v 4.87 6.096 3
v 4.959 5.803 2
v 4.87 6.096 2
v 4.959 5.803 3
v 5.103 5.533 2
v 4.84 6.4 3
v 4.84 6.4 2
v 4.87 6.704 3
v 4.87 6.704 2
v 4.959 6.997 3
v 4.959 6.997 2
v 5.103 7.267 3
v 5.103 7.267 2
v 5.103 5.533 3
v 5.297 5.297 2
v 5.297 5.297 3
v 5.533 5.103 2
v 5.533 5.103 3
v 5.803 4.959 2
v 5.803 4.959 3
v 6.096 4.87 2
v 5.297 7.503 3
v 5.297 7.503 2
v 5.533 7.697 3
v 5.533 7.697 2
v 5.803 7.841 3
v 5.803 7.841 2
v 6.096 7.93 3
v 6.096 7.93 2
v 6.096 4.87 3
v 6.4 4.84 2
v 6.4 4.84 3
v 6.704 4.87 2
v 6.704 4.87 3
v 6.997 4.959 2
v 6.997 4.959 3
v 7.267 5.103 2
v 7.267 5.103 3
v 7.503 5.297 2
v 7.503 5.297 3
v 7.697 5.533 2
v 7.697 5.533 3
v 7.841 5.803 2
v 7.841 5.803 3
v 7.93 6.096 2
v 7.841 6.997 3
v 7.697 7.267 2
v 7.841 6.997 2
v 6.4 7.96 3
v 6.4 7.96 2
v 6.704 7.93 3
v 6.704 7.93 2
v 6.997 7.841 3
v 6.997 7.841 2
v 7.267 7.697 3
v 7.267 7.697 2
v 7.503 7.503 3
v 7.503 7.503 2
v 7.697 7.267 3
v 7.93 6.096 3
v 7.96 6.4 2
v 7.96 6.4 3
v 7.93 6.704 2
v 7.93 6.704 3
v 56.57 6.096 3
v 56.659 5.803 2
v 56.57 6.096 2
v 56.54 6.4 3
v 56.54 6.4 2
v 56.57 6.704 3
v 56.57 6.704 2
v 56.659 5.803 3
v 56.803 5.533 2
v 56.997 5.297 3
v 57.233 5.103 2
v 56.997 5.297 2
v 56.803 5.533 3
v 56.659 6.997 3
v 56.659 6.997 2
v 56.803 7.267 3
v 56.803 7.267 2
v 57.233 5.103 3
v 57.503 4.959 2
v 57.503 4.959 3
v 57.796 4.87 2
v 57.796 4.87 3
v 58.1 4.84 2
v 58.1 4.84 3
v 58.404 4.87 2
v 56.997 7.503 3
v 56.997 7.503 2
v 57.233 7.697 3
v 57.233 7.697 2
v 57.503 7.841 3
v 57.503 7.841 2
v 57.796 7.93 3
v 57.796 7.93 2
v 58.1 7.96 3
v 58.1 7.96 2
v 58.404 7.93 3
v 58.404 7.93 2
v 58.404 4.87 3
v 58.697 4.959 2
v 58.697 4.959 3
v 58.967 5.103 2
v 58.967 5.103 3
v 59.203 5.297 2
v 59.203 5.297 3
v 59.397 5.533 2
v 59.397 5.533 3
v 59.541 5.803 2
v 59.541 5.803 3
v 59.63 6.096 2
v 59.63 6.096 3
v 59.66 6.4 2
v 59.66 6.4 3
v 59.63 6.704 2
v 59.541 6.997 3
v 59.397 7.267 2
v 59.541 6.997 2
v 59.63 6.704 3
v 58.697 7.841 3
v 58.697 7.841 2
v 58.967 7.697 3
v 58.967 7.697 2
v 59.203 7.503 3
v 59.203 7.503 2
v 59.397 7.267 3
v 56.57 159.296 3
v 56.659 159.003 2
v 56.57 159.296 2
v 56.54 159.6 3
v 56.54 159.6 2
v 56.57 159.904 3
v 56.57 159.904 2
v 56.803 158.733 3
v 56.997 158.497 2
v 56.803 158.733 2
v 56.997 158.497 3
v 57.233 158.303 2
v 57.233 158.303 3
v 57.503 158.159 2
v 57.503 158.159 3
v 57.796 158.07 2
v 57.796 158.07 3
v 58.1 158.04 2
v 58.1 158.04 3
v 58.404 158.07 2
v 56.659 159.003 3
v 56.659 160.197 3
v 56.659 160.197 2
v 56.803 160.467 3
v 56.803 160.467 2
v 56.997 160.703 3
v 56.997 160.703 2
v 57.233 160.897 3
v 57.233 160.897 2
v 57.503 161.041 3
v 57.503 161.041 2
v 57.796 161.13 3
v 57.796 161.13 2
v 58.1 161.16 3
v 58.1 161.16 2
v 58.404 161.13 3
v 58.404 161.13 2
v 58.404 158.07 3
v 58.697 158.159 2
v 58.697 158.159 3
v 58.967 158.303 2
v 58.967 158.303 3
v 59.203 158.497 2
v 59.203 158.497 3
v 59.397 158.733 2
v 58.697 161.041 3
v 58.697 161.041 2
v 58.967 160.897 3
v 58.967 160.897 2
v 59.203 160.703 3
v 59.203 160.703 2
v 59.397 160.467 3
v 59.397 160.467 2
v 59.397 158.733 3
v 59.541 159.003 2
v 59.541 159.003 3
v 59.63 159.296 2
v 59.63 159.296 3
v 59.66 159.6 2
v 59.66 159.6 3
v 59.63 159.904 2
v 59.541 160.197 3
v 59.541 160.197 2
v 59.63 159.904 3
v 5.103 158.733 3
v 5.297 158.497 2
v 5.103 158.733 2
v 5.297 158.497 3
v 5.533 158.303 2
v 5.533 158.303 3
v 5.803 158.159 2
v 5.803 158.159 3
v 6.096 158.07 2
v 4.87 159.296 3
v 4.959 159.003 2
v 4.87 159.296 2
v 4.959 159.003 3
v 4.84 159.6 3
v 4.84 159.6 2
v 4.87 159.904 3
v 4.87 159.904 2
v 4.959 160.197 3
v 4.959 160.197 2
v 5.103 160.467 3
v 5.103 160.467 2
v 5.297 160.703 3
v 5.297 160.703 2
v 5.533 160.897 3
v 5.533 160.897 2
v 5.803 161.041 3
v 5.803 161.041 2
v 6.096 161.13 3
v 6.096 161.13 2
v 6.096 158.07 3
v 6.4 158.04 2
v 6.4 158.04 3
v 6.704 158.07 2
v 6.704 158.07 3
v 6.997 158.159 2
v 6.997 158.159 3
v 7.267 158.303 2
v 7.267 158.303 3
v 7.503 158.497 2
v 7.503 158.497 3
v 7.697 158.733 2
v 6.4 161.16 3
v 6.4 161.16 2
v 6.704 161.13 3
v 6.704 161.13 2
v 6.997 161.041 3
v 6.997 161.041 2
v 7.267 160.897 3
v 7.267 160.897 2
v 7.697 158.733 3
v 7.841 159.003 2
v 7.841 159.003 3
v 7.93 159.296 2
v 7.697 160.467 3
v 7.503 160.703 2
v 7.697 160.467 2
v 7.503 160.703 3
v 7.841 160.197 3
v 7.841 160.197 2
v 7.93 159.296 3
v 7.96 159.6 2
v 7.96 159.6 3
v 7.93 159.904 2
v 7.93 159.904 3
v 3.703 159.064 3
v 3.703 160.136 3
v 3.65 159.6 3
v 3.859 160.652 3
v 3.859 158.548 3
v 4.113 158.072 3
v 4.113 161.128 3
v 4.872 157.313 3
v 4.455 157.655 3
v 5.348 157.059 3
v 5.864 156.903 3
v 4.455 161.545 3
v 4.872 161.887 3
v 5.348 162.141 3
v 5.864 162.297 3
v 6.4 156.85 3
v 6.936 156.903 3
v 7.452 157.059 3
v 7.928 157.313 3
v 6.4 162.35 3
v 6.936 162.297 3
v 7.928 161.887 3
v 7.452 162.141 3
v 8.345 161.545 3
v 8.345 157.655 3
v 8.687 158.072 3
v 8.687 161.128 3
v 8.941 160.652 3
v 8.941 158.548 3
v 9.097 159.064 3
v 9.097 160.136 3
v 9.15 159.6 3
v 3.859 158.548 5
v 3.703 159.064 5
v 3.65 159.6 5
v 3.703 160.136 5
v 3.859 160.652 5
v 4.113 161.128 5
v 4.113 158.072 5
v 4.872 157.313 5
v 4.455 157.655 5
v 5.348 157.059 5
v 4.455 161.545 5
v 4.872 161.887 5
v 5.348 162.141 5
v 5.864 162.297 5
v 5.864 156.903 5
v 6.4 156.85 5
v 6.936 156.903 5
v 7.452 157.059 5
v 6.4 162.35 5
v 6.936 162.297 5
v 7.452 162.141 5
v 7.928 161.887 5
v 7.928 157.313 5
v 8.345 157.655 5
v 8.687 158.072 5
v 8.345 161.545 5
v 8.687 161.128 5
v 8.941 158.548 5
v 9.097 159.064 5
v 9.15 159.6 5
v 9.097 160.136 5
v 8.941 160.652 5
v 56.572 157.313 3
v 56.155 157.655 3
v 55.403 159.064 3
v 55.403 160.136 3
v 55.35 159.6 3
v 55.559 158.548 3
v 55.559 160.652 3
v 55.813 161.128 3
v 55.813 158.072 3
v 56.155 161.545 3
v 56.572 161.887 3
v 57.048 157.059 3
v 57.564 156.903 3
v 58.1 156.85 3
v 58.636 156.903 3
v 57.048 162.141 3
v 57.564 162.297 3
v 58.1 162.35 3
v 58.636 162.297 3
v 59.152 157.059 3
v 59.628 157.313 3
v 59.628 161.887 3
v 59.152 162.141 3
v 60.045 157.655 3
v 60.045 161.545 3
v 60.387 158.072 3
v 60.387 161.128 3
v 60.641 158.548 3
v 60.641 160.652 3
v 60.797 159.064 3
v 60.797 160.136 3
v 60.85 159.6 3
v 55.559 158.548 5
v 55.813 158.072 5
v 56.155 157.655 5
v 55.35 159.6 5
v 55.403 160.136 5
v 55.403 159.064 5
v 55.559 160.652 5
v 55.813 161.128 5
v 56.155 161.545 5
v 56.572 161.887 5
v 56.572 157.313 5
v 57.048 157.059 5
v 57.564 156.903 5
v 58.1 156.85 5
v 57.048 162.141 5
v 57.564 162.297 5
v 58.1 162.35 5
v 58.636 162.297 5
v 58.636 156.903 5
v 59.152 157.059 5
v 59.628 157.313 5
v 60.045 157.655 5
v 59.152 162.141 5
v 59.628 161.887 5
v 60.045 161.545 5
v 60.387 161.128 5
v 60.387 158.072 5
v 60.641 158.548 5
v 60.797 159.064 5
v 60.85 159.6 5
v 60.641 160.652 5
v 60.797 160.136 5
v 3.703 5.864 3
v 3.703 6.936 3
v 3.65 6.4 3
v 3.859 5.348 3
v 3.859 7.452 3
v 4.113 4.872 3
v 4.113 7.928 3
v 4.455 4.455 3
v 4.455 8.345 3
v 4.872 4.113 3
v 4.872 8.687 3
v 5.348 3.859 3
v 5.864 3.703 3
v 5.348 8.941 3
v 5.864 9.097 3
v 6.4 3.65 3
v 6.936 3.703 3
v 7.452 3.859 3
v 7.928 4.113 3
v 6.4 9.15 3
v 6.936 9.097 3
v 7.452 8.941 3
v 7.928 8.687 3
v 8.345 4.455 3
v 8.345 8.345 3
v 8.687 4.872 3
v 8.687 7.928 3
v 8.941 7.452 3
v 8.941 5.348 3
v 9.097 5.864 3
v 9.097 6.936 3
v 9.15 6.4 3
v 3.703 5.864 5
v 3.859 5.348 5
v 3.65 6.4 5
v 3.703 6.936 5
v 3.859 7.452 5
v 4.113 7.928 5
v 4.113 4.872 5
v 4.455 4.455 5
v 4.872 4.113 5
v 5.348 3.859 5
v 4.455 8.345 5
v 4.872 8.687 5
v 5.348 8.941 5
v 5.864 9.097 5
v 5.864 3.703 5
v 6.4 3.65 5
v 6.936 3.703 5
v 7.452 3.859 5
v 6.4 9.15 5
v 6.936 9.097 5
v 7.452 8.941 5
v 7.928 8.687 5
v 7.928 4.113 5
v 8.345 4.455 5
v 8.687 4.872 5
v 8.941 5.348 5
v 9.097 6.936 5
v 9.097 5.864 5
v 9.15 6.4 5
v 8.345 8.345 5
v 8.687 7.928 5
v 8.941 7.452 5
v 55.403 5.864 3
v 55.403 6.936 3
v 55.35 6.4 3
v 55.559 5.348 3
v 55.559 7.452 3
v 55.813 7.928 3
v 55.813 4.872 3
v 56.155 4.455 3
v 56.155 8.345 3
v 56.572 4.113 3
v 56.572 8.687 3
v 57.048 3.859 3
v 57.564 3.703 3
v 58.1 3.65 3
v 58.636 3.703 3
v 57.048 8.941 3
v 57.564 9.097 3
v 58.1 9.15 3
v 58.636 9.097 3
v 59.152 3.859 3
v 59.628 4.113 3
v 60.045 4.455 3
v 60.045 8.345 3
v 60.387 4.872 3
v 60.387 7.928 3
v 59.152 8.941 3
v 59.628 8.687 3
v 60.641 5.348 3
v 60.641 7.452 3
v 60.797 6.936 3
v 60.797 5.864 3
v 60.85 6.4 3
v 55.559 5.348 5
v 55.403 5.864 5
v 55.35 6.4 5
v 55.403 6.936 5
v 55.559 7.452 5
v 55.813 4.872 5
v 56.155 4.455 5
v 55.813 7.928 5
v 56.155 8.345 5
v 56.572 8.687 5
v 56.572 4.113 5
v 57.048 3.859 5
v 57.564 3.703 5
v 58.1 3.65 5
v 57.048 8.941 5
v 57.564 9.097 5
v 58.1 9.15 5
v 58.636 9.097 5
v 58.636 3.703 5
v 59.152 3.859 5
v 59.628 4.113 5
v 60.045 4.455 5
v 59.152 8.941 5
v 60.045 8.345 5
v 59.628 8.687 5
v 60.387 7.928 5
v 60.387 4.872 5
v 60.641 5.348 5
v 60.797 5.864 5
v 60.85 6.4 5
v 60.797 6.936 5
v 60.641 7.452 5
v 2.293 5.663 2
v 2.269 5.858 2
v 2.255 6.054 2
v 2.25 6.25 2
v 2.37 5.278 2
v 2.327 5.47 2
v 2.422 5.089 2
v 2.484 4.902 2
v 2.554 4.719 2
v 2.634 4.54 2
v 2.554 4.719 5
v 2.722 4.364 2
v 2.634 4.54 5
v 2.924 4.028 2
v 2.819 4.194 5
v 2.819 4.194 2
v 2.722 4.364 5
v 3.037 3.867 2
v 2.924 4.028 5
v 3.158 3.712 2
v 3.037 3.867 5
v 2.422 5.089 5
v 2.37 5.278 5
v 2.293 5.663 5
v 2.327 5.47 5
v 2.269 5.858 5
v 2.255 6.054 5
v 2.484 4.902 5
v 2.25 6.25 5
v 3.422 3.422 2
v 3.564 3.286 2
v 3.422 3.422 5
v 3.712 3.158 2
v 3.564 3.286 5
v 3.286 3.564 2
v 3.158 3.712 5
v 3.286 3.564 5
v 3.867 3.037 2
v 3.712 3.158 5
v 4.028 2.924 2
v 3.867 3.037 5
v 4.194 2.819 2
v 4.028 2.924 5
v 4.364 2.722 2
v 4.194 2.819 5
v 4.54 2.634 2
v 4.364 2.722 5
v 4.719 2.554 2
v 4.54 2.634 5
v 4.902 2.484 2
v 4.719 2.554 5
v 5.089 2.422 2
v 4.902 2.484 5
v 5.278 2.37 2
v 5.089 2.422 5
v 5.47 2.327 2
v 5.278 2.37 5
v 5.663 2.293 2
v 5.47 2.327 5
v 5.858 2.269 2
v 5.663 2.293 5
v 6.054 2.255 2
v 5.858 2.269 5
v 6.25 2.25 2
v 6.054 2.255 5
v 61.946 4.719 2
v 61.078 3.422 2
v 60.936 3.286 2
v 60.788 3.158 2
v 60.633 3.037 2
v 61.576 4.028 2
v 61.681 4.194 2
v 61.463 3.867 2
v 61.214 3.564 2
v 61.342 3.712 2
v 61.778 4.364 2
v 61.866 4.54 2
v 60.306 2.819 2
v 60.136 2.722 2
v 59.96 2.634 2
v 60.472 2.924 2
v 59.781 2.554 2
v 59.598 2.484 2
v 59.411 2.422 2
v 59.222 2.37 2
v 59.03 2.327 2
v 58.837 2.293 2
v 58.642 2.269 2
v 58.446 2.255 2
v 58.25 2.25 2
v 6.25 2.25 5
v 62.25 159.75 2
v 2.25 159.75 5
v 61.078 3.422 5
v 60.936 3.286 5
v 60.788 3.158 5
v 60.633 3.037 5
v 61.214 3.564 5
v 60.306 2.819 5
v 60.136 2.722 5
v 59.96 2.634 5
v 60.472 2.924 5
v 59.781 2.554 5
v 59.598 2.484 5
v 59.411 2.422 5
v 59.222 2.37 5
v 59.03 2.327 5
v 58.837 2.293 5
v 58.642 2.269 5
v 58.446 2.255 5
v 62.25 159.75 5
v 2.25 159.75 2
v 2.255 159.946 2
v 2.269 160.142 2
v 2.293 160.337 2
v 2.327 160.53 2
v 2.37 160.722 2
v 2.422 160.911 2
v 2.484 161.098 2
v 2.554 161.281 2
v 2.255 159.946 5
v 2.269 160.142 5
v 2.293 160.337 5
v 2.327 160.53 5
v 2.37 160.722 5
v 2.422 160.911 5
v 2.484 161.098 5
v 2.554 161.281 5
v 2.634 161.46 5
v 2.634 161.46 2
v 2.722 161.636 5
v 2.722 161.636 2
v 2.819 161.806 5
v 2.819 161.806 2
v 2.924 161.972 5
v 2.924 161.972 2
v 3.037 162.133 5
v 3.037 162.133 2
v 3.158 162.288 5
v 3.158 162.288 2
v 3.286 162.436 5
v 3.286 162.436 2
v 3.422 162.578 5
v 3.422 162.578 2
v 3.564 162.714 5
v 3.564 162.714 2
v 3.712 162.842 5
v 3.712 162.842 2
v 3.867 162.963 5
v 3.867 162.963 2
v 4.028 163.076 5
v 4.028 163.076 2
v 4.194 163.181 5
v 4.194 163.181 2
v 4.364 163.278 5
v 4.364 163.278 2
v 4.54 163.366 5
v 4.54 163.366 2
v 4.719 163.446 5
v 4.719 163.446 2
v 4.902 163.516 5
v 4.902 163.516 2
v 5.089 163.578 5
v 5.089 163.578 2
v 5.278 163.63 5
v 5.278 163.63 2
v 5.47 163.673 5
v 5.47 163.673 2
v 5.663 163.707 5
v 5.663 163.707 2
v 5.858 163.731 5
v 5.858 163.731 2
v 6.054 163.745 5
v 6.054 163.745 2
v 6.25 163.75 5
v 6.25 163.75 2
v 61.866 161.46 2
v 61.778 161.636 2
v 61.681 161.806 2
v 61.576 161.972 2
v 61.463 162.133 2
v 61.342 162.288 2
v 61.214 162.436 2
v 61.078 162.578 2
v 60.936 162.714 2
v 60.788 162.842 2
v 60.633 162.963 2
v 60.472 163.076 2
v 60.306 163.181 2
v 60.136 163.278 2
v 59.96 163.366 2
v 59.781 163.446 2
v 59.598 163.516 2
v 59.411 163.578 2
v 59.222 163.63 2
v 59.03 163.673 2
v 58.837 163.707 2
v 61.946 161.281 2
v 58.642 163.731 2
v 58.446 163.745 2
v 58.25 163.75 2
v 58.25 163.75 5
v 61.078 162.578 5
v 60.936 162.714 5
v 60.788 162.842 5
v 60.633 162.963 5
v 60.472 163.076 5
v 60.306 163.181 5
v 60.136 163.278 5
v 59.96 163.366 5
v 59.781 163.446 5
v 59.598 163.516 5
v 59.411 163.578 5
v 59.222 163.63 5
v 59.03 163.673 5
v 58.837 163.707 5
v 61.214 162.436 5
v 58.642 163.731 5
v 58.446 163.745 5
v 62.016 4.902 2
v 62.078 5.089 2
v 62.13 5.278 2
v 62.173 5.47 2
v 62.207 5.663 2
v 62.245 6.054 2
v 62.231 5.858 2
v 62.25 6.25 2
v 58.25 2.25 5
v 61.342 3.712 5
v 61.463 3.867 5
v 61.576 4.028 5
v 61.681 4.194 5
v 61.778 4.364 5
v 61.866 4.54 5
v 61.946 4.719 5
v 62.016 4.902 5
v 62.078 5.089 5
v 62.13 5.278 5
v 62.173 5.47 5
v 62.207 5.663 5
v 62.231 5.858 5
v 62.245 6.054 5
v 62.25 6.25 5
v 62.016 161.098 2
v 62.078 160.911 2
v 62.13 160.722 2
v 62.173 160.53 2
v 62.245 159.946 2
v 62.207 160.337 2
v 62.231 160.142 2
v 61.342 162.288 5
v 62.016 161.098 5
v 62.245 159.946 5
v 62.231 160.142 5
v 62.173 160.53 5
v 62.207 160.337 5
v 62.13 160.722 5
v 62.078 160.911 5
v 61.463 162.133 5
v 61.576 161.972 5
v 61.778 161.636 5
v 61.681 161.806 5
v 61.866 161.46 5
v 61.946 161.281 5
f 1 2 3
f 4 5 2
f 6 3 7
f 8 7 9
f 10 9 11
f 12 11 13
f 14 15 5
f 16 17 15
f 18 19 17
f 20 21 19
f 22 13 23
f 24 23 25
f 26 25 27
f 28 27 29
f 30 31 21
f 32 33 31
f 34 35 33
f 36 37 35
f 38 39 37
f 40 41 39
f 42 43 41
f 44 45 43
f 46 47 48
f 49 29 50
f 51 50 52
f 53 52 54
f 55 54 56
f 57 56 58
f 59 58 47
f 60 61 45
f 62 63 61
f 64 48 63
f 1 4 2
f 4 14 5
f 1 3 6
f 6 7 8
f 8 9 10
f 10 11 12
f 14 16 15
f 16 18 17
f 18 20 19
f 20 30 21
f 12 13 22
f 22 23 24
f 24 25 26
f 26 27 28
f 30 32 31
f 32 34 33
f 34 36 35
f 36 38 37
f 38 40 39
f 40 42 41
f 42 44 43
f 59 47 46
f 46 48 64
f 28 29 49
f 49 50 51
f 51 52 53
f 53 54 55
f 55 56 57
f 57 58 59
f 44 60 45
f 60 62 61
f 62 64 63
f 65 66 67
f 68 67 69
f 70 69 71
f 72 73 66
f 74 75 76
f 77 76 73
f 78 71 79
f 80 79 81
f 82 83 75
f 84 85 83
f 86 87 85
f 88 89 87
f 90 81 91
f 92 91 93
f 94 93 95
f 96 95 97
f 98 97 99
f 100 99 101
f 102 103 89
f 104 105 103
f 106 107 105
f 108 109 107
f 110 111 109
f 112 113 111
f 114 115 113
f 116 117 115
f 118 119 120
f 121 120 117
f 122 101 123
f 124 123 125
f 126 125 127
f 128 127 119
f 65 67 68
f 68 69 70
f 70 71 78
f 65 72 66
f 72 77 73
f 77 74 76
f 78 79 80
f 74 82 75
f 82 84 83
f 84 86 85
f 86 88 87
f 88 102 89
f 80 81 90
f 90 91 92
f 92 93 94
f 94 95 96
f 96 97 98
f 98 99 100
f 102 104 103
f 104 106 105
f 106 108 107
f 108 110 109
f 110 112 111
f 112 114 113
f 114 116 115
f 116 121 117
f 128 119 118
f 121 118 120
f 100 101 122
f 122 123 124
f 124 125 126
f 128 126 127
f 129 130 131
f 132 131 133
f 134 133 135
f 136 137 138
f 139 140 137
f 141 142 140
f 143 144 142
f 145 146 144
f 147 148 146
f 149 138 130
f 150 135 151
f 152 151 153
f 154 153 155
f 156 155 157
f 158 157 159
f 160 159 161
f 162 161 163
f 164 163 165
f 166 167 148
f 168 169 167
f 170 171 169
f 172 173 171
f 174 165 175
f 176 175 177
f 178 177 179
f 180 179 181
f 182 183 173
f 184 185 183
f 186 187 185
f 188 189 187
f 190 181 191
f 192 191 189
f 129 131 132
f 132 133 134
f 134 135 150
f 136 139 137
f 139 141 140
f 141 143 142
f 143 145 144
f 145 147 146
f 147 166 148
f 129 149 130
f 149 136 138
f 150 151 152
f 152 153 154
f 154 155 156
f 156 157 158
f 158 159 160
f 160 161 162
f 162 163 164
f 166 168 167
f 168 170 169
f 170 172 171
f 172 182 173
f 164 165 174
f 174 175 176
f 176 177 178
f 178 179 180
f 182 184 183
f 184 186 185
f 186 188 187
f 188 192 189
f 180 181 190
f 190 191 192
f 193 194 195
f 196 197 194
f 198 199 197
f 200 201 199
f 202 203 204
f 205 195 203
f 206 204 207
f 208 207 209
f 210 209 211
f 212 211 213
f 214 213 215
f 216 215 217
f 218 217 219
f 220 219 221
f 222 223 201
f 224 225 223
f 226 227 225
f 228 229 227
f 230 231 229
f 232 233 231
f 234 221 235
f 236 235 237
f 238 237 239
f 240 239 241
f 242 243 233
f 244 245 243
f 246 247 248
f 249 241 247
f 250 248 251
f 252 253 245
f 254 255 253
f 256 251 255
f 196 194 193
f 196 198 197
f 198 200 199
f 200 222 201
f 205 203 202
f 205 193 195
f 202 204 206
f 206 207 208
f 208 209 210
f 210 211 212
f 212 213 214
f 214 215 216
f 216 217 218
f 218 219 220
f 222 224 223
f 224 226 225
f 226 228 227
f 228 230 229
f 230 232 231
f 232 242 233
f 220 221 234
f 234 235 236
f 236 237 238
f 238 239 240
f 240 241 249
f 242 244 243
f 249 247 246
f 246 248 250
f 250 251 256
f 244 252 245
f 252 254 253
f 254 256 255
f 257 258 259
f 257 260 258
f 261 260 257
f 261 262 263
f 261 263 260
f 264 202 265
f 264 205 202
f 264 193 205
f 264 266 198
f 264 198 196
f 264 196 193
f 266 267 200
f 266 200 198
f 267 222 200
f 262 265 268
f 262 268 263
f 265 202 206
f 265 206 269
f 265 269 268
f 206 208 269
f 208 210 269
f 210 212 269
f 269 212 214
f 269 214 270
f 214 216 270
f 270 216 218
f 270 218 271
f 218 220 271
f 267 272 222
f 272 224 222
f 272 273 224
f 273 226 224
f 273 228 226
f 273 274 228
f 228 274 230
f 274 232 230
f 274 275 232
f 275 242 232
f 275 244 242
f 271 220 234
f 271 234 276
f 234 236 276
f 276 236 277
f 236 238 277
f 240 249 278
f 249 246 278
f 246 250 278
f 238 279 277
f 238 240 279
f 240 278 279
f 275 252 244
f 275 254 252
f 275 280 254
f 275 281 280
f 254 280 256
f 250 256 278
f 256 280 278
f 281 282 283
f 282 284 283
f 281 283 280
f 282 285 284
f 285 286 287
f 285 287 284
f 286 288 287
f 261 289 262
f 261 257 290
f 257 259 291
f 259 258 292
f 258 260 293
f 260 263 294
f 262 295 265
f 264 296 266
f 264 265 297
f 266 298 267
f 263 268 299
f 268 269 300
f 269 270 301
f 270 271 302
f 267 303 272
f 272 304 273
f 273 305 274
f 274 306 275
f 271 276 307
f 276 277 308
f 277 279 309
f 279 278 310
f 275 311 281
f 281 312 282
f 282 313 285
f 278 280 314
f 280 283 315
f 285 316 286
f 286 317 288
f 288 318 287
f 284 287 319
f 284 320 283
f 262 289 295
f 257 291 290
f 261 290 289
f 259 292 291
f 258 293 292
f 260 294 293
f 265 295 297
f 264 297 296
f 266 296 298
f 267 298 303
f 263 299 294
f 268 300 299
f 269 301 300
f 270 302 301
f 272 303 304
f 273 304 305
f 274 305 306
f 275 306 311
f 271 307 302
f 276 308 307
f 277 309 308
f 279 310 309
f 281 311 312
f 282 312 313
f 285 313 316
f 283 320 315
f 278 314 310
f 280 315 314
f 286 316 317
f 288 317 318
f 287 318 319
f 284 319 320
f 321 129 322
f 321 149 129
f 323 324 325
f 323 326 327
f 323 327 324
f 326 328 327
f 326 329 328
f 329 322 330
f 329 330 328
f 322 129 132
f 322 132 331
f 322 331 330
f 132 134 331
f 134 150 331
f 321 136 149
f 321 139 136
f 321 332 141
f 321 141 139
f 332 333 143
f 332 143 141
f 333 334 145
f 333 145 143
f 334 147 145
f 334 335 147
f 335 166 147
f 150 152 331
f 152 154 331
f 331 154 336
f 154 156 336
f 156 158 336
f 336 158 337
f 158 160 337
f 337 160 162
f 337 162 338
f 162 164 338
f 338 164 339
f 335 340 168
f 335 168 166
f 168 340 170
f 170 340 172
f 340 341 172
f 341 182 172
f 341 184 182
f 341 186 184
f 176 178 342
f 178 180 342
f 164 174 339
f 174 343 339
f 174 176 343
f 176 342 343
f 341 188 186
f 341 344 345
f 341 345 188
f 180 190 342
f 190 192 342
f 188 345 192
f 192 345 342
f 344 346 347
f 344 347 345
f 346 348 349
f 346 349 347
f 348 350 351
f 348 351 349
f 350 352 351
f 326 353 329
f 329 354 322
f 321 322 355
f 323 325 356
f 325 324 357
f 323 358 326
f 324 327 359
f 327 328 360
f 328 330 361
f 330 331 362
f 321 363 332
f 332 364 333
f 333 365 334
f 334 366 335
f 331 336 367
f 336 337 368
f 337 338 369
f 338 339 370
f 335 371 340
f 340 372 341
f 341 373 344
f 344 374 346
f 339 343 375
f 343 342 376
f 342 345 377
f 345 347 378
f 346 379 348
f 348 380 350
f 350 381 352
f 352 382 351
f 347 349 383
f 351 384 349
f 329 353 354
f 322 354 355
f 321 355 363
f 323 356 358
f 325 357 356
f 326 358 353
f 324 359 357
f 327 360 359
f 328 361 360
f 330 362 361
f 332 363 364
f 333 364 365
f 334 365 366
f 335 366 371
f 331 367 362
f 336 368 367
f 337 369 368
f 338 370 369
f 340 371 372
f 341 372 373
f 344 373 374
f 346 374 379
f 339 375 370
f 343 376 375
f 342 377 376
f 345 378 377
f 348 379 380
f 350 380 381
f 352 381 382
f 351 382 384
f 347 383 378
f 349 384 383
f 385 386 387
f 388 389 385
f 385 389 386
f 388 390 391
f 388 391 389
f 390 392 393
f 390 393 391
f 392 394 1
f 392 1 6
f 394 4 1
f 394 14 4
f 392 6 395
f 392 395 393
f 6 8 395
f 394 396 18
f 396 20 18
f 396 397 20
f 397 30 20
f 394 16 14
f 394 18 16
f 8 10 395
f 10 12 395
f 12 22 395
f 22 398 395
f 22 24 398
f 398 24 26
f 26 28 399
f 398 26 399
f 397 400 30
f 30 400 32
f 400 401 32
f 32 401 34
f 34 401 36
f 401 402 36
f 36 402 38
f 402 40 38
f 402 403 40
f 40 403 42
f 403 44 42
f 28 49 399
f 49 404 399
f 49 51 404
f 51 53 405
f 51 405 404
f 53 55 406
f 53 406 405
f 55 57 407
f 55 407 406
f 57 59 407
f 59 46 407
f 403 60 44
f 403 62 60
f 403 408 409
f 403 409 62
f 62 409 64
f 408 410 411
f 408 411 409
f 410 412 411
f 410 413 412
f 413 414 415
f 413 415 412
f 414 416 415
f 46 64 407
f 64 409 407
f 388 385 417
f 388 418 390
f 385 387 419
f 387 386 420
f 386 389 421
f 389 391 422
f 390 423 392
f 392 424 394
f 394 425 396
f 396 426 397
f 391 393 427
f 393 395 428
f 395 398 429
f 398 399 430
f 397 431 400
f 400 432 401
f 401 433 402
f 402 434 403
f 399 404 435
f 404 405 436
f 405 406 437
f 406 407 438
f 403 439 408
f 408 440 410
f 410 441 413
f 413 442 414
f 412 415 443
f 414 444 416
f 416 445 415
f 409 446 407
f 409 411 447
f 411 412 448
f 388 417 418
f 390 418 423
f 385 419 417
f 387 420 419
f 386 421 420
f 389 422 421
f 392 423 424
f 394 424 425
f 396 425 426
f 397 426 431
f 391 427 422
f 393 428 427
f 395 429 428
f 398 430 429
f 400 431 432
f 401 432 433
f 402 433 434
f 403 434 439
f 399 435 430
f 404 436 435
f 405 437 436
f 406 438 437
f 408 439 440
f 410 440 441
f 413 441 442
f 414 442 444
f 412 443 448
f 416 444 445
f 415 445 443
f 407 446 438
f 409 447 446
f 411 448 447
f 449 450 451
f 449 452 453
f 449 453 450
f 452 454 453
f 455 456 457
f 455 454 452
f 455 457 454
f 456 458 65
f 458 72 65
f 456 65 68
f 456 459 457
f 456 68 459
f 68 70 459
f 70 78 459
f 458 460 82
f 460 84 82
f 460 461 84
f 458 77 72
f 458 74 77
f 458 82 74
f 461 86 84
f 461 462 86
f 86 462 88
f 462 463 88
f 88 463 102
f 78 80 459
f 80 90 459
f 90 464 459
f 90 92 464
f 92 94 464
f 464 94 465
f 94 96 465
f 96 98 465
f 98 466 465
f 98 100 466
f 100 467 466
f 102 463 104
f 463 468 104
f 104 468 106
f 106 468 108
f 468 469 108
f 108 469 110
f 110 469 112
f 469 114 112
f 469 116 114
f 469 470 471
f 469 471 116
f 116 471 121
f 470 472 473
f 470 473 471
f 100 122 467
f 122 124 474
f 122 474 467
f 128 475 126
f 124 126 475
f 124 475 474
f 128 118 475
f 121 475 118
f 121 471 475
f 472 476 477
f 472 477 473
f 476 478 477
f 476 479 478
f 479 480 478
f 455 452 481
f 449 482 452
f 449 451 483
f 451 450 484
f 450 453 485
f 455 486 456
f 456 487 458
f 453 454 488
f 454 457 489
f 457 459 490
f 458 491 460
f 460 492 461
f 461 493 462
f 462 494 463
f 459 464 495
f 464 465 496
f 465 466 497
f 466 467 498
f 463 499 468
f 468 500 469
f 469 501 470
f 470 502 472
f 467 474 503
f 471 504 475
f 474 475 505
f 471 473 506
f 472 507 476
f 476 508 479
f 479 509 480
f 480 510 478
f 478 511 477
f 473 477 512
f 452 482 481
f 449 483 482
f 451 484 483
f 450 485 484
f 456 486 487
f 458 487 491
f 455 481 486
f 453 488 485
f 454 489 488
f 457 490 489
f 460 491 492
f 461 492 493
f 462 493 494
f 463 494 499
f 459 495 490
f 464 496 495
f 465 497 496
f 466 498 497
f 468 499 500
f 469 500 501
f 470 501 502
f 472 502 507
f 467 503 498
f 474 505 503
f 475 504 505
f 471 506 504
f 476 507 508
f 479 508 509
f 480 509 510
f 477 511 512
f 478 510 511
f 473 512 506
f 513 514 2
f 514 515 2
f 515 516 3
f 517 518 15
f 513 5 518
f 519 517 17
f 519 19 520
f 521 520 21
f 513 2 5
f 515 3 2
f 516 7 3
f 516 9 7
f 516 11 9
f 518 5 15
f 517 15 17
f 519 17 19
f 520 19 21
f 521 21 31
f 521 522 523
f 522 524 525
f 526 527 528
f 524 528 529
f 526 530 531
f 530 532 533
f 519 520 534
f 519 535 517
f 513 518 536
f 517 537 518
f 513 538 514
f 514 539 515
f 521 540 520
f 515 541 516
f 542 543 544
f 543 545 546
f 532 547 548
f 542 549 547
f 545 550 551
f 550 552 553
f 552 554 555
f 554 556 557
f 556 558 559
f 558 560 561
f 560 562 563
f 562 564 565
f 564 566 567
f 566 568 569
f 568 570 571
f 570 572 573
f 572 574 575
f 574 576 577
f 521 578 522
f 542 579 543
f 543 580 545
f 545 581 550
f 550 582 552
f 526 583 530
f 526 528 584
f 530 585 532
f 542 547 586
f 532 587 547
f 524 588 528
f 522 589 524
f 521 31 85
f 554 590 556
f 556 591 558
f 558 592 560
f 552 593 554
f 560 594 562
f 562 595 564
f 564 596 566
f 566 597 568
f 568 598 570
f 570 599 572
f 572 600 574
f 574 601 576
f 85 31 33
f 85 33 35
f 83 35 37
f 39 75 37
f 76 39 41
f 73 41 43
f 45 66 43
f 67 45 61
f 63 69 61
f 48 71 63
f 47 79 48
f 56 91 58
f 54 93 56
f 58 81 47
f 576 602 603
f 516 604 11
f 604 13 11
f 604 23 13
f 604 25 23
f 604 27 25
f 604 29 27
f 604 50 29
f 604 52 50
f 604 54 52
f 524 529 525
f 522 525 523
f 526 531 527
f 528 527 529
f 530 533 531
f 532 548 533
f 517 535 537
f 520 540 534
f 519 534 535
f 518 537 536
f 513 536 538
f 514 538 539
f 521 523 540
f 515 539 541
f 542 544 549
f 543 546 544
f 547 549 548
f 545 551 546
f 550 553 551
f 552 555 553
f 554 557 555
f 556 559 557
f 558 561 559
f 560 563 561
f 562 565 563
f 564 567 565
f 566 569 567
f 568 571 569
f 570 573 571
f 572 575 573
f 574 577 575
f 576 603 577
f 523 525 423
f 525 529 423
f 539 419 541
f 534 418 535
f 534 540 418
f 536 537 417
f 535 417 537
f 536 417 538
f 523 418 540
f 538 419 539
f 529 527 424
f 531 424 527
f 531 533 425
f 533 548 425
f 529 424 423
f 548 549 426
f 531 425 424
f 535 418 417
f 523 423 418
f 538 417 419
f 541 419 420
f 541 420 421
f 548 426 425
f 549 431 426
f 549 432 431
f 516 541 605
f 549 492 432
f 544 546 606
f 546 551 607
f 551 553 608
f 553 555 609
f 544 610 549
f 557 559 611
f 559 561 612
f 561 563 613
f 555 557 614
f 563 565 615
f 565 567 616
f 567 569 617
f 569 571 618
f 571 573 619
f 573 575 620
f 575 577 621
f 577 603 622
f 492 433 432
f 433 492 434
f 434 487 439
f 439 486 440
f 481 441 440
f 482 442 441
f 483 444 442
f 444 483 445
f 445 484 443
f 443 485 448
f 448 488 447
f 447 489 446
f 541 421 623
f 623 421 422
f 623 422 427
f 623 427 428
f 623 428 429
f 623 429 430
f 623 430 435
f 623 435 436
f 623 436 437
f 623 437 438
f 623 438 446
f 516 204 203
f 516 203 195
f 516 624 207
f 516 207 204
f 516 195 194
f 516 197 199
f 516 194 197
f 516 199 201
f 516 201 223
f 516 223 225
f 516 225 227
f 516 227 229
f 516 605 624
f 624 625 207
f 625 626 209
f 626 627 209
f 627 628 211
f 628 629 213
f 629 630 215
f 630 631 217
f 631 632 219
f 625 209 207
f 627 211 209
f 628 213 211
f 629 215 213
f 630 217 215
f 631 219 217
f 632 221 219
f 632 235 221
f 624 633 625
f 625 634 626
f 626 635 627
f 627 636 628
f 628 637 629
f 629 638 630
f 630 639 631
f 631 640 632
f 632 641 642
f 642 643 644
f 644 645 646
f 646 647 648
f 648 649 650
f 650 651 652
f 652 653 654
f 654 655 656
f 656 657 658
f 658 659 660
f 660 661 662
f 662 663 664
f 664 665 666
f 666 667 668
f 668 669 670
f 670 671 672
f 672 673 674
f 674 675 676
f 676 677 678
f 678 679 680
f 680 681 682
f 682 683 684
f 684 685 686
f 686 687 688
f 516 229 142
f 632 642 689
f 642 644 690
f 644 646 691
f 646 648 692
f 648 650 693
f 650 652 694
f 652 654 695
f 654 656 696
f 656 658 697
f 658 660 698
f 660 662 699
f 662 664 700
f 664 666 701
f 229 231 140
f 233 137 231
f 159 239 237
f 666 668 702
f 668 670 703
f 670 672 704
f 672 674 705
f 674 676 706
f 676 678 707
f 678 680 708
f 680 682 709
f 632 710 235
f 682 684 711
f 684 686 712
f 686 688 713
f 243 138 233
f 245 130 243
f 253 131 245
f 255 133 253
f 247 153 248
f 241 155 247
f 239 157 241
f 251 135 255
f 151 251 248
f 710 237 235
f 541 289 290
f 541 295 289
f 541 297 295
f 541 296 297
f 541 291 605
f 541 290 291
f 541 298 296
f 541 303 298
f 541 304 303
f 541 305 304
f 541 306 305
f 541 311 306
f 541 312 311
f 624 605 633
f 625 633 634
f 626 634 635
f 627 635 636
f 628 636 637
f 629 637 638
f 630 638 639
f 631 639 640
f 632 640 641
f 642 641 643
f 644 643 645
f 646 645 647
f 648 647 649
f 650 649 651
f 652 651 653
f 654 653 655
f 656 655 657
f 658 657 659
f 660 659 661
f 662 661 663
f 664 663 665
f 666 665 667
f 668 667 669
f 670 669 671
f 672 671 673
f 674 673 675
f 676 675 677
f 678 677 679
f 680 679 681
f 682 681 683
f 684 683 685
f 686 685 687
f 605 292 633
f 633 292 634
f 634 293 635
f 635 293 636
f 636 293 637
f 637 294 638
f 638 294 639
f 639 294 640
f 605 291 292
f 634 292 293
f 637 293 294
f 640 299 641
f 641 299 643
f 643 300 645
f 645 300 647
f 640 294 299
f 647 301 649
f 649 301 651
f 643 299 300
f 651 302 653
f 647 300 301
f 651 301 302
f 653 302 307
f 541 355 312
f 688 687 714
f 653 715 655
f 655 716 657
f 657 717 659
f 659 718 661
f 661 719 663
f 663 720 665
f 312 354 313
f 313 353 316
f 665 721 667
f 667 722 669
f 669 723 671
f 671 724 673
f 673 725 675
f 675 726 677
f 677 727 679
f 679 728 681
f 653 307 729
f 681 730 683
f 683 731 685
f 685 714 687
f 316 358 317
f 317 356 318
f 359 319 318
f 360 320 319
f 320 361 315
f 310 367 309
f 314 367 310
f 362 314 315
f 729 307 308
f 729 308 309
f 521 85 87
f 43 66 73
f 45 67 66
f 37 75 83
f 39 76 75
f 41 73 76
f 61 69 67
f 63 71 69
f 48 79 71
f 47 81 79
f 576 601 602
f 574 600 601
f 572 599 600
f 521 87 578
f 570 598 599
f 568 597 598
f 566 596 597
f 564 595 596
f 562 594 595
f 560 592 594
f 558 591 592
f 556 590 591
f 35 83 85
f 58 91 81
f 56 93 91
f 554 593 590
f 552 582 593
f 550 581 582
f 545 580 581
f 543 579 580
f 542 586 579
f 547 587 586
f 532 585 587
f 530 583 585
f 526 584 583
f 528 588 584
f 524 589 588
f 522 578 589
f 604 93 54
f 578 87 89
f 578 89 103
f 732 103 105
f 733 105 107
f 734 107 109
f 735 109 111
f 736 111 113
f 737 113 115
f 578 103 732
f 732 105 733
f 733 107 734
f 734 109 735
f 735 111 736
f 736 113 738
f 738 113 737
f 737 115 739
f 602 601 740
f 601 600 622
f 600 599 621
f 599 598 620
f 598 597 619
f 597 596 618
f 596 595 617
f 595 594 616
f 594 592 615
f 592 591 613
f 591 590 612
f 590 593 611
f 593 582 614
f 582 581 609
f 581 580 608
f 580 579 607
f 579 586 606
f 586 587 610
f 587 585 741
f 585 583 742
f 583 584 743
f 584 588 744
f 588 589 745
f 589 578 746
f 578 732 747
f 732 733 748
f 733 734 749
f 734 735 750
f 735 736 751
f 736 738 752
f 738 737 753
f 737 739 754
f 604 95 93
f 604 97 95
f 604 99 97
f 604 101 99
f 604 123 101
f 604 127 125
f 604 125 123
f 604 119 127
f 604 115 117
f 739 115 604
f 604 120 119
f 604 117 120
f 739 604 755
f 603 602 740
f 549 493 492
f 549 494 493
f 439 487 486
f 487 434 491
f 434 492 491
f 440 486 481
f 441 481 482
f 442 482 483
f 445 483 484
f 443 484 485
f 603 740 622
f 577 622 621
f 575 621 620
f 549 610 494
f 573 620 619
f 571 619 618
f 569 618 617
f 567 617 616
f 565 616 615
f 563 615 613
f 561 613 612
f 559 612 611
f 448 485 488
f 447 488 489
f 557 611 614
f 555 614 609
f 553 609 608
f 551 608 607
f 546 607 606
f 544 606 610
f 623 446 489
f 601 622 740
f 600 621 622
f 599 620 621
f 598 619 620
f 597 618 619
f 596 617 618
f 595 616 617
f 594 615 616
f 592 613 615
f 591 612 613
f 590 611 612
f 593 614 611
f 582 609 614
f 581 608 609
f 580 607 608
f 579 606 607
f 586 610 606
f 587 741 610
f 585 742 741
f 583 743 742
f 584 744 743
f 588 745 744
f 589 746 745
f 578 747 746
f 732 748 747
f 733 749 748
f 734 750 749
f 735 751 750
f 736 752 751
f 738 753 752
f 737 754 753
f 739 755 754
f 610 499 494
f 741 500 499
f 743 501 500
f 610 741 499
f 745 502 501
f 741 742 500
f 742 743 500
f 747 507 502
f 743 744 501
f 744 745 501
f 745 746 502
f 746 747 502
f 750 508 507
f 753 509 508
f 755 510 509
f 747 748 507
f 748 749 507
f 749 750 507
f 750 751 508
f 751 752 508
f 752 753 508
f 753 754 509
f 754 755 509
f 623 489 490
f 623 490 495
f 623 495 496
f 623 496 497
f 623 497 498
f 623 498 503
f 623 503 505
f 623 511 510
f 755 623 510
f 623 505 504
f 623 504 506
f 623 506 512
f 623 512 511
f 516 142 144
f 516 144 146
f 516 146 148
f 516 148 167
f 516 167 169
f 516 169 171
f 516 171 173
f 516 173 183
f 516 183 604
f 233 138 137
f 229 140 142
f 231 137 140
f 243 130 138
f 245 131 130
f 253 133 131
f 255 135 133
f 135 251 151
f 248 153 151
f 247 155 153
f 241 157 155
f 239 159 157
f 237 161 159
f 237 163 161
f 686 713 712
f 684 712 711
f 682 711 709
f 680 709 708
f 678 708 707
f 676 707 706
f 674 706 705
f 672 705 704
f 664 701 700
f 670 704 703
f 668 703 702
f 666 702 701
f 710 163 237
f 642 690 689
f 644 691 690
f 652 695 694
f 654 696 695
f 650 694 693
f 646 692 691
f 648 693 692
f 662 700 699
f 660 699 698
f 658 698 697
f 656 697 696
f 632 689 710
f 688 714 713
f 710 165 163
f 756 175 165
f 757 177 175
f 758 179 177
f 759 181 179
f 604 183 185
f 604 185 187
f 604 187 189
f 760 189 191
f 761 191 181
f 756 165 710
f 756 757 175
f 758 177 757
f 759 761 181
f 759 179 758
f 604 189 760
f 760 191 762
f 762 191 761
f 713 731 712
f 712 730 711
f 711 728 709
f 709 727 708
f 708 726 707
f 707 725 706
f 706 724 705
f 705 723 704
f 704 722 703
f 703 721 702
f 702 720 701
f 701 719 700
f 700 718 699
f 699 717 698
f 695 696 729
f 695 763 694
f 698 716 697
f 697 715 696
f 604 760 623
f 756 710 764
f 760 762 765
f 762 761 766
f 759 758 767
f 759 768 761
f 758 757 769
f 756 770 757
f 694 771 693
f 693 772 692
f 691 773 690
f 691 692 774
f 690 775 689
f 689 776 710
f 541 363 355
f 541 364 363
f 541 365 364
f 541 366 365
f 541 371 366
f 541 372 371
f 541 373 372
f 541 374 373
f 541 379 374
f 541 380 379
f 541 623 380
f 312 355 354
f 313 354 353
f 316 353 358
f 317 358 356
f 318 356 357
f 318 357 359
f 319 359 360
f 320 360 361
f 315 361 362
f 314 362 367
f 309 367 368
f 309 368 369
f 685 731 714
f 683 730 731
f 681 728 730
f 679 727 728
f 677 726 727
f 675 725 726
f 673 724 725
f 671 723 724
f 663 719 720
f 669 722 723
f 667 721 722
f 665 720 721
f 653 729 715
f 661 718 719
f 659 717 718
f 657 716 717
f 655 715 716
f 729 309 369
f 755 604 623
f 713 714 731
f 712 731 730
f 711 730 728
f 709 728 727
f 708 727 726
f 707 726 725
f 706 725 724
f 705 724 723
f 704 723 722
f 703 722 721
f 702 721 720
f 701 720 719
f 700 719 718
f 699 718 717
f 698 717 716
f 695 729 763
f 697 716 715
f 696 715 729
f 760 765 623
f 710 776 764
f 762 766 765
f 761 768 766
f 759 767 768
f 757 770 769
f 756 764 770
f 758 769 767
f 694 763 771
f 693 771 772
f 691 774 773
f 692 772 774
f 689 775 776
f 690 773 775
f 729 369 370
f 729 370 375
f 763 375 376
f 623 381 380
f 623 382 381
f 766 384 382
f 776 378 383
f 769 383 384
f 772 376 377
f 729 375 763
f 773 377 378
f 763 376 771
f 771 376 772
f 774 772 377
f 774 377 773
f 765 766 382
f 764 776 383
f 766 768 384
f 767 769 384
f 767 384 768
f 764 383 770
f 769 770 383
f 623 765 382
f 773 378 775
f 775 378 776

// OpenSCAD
// file: mixin.scad
corner_radius = 8;
lid_height = 3;
m3 = 3.12;
socket_diameter = 25;
tube_diameter = 16.4;
wall = 2;

board_length = 100;
board_width = 60;
board_leg_height = 16;

regulator_length = 25;
regulator_width = 30;
regulator_leg_height = 3;

enclosure_width = board_width + 0.5;
enclosure_length = 162;
enclosure_leg_height = 18 + wall;
enclosure_height = enclosure_leg_height;

leg_padding = corner_radius/2+0.4;

module rounded_box(size = [10, 10, 5], r) {
  translate([size[0] / 2, size[1] / 2, 0]) {
    linear_extrude(height=size[2]) {
      minkowski() {
        square([size[0] - 2 * r, size[1] - 2 * r], center=true);
        circle(r=r);
      }
    }
  }
}
// main file
include <mixin.scad>

$fn = 128;

module leg(leg_height = 8) {
  difference() {
    cylinder(h=leg_height, d=5.5, $fn=32);

    color("#b1a531") cylinder(h=leg_height + 1, d=3, $fn=32);
  }
}

module cutout(leg_height = 8) {
  cylinder(h=leg_height, d=m3, $fn=32);
}

module tube() {
  translate([board_width / 2, 0, height]) color("#d6a731")
      cylinder(h=45, d=tube_diameter, $fn=32);
}

module lid() {
  difference() {
    translate([wall + 0.25, wall + 0.25, wall]) rounded_box(
        [enclosure_width - 0.5, enclosure_length - 0.5, lid_height], r=4
      );

    union() {
      translate([wall, wall, 0]) {
        translate([leg_padding, leg_padding, 0]) color("#b1a531") cutout(enclosure_leg_height);
        translate([enclosure_width - leg_padding, leg_padding, 0]) color("#b1a531") cutout(enclosure_leg_height);
        translate([enclosure_width - leg_padding, enclosure_length - leg_padding, 0]) color("#b1a531") cutout(enclosure_leg_height);
        translate([leg_padding, enclosure_length - leg_padding, 0]) color("#b1a531") cutout(enclosure_leg_height);
      }

      translate([wall, wall, wall + 3 - 2]) {
        translate([leg_padding, leg_padding, 0]) color("#b1a531") leg(enclosure_leg_height);
        translate([enclosure_width - leg_padding, leg_padding, 0]) color("#b1a531") leg(enclosure_leg_height);
        translate([enclosure_width - leg_padding, enclosure_length - leg_padding, 0]) color("#b1a531") leg(enclosure_leg_height);
        translate([leg_padding, enclosure_length - leg_padding, 0]) color("#b1a531") leg(enclosure_leg_height);
      }
    }
  }
}

lid();
